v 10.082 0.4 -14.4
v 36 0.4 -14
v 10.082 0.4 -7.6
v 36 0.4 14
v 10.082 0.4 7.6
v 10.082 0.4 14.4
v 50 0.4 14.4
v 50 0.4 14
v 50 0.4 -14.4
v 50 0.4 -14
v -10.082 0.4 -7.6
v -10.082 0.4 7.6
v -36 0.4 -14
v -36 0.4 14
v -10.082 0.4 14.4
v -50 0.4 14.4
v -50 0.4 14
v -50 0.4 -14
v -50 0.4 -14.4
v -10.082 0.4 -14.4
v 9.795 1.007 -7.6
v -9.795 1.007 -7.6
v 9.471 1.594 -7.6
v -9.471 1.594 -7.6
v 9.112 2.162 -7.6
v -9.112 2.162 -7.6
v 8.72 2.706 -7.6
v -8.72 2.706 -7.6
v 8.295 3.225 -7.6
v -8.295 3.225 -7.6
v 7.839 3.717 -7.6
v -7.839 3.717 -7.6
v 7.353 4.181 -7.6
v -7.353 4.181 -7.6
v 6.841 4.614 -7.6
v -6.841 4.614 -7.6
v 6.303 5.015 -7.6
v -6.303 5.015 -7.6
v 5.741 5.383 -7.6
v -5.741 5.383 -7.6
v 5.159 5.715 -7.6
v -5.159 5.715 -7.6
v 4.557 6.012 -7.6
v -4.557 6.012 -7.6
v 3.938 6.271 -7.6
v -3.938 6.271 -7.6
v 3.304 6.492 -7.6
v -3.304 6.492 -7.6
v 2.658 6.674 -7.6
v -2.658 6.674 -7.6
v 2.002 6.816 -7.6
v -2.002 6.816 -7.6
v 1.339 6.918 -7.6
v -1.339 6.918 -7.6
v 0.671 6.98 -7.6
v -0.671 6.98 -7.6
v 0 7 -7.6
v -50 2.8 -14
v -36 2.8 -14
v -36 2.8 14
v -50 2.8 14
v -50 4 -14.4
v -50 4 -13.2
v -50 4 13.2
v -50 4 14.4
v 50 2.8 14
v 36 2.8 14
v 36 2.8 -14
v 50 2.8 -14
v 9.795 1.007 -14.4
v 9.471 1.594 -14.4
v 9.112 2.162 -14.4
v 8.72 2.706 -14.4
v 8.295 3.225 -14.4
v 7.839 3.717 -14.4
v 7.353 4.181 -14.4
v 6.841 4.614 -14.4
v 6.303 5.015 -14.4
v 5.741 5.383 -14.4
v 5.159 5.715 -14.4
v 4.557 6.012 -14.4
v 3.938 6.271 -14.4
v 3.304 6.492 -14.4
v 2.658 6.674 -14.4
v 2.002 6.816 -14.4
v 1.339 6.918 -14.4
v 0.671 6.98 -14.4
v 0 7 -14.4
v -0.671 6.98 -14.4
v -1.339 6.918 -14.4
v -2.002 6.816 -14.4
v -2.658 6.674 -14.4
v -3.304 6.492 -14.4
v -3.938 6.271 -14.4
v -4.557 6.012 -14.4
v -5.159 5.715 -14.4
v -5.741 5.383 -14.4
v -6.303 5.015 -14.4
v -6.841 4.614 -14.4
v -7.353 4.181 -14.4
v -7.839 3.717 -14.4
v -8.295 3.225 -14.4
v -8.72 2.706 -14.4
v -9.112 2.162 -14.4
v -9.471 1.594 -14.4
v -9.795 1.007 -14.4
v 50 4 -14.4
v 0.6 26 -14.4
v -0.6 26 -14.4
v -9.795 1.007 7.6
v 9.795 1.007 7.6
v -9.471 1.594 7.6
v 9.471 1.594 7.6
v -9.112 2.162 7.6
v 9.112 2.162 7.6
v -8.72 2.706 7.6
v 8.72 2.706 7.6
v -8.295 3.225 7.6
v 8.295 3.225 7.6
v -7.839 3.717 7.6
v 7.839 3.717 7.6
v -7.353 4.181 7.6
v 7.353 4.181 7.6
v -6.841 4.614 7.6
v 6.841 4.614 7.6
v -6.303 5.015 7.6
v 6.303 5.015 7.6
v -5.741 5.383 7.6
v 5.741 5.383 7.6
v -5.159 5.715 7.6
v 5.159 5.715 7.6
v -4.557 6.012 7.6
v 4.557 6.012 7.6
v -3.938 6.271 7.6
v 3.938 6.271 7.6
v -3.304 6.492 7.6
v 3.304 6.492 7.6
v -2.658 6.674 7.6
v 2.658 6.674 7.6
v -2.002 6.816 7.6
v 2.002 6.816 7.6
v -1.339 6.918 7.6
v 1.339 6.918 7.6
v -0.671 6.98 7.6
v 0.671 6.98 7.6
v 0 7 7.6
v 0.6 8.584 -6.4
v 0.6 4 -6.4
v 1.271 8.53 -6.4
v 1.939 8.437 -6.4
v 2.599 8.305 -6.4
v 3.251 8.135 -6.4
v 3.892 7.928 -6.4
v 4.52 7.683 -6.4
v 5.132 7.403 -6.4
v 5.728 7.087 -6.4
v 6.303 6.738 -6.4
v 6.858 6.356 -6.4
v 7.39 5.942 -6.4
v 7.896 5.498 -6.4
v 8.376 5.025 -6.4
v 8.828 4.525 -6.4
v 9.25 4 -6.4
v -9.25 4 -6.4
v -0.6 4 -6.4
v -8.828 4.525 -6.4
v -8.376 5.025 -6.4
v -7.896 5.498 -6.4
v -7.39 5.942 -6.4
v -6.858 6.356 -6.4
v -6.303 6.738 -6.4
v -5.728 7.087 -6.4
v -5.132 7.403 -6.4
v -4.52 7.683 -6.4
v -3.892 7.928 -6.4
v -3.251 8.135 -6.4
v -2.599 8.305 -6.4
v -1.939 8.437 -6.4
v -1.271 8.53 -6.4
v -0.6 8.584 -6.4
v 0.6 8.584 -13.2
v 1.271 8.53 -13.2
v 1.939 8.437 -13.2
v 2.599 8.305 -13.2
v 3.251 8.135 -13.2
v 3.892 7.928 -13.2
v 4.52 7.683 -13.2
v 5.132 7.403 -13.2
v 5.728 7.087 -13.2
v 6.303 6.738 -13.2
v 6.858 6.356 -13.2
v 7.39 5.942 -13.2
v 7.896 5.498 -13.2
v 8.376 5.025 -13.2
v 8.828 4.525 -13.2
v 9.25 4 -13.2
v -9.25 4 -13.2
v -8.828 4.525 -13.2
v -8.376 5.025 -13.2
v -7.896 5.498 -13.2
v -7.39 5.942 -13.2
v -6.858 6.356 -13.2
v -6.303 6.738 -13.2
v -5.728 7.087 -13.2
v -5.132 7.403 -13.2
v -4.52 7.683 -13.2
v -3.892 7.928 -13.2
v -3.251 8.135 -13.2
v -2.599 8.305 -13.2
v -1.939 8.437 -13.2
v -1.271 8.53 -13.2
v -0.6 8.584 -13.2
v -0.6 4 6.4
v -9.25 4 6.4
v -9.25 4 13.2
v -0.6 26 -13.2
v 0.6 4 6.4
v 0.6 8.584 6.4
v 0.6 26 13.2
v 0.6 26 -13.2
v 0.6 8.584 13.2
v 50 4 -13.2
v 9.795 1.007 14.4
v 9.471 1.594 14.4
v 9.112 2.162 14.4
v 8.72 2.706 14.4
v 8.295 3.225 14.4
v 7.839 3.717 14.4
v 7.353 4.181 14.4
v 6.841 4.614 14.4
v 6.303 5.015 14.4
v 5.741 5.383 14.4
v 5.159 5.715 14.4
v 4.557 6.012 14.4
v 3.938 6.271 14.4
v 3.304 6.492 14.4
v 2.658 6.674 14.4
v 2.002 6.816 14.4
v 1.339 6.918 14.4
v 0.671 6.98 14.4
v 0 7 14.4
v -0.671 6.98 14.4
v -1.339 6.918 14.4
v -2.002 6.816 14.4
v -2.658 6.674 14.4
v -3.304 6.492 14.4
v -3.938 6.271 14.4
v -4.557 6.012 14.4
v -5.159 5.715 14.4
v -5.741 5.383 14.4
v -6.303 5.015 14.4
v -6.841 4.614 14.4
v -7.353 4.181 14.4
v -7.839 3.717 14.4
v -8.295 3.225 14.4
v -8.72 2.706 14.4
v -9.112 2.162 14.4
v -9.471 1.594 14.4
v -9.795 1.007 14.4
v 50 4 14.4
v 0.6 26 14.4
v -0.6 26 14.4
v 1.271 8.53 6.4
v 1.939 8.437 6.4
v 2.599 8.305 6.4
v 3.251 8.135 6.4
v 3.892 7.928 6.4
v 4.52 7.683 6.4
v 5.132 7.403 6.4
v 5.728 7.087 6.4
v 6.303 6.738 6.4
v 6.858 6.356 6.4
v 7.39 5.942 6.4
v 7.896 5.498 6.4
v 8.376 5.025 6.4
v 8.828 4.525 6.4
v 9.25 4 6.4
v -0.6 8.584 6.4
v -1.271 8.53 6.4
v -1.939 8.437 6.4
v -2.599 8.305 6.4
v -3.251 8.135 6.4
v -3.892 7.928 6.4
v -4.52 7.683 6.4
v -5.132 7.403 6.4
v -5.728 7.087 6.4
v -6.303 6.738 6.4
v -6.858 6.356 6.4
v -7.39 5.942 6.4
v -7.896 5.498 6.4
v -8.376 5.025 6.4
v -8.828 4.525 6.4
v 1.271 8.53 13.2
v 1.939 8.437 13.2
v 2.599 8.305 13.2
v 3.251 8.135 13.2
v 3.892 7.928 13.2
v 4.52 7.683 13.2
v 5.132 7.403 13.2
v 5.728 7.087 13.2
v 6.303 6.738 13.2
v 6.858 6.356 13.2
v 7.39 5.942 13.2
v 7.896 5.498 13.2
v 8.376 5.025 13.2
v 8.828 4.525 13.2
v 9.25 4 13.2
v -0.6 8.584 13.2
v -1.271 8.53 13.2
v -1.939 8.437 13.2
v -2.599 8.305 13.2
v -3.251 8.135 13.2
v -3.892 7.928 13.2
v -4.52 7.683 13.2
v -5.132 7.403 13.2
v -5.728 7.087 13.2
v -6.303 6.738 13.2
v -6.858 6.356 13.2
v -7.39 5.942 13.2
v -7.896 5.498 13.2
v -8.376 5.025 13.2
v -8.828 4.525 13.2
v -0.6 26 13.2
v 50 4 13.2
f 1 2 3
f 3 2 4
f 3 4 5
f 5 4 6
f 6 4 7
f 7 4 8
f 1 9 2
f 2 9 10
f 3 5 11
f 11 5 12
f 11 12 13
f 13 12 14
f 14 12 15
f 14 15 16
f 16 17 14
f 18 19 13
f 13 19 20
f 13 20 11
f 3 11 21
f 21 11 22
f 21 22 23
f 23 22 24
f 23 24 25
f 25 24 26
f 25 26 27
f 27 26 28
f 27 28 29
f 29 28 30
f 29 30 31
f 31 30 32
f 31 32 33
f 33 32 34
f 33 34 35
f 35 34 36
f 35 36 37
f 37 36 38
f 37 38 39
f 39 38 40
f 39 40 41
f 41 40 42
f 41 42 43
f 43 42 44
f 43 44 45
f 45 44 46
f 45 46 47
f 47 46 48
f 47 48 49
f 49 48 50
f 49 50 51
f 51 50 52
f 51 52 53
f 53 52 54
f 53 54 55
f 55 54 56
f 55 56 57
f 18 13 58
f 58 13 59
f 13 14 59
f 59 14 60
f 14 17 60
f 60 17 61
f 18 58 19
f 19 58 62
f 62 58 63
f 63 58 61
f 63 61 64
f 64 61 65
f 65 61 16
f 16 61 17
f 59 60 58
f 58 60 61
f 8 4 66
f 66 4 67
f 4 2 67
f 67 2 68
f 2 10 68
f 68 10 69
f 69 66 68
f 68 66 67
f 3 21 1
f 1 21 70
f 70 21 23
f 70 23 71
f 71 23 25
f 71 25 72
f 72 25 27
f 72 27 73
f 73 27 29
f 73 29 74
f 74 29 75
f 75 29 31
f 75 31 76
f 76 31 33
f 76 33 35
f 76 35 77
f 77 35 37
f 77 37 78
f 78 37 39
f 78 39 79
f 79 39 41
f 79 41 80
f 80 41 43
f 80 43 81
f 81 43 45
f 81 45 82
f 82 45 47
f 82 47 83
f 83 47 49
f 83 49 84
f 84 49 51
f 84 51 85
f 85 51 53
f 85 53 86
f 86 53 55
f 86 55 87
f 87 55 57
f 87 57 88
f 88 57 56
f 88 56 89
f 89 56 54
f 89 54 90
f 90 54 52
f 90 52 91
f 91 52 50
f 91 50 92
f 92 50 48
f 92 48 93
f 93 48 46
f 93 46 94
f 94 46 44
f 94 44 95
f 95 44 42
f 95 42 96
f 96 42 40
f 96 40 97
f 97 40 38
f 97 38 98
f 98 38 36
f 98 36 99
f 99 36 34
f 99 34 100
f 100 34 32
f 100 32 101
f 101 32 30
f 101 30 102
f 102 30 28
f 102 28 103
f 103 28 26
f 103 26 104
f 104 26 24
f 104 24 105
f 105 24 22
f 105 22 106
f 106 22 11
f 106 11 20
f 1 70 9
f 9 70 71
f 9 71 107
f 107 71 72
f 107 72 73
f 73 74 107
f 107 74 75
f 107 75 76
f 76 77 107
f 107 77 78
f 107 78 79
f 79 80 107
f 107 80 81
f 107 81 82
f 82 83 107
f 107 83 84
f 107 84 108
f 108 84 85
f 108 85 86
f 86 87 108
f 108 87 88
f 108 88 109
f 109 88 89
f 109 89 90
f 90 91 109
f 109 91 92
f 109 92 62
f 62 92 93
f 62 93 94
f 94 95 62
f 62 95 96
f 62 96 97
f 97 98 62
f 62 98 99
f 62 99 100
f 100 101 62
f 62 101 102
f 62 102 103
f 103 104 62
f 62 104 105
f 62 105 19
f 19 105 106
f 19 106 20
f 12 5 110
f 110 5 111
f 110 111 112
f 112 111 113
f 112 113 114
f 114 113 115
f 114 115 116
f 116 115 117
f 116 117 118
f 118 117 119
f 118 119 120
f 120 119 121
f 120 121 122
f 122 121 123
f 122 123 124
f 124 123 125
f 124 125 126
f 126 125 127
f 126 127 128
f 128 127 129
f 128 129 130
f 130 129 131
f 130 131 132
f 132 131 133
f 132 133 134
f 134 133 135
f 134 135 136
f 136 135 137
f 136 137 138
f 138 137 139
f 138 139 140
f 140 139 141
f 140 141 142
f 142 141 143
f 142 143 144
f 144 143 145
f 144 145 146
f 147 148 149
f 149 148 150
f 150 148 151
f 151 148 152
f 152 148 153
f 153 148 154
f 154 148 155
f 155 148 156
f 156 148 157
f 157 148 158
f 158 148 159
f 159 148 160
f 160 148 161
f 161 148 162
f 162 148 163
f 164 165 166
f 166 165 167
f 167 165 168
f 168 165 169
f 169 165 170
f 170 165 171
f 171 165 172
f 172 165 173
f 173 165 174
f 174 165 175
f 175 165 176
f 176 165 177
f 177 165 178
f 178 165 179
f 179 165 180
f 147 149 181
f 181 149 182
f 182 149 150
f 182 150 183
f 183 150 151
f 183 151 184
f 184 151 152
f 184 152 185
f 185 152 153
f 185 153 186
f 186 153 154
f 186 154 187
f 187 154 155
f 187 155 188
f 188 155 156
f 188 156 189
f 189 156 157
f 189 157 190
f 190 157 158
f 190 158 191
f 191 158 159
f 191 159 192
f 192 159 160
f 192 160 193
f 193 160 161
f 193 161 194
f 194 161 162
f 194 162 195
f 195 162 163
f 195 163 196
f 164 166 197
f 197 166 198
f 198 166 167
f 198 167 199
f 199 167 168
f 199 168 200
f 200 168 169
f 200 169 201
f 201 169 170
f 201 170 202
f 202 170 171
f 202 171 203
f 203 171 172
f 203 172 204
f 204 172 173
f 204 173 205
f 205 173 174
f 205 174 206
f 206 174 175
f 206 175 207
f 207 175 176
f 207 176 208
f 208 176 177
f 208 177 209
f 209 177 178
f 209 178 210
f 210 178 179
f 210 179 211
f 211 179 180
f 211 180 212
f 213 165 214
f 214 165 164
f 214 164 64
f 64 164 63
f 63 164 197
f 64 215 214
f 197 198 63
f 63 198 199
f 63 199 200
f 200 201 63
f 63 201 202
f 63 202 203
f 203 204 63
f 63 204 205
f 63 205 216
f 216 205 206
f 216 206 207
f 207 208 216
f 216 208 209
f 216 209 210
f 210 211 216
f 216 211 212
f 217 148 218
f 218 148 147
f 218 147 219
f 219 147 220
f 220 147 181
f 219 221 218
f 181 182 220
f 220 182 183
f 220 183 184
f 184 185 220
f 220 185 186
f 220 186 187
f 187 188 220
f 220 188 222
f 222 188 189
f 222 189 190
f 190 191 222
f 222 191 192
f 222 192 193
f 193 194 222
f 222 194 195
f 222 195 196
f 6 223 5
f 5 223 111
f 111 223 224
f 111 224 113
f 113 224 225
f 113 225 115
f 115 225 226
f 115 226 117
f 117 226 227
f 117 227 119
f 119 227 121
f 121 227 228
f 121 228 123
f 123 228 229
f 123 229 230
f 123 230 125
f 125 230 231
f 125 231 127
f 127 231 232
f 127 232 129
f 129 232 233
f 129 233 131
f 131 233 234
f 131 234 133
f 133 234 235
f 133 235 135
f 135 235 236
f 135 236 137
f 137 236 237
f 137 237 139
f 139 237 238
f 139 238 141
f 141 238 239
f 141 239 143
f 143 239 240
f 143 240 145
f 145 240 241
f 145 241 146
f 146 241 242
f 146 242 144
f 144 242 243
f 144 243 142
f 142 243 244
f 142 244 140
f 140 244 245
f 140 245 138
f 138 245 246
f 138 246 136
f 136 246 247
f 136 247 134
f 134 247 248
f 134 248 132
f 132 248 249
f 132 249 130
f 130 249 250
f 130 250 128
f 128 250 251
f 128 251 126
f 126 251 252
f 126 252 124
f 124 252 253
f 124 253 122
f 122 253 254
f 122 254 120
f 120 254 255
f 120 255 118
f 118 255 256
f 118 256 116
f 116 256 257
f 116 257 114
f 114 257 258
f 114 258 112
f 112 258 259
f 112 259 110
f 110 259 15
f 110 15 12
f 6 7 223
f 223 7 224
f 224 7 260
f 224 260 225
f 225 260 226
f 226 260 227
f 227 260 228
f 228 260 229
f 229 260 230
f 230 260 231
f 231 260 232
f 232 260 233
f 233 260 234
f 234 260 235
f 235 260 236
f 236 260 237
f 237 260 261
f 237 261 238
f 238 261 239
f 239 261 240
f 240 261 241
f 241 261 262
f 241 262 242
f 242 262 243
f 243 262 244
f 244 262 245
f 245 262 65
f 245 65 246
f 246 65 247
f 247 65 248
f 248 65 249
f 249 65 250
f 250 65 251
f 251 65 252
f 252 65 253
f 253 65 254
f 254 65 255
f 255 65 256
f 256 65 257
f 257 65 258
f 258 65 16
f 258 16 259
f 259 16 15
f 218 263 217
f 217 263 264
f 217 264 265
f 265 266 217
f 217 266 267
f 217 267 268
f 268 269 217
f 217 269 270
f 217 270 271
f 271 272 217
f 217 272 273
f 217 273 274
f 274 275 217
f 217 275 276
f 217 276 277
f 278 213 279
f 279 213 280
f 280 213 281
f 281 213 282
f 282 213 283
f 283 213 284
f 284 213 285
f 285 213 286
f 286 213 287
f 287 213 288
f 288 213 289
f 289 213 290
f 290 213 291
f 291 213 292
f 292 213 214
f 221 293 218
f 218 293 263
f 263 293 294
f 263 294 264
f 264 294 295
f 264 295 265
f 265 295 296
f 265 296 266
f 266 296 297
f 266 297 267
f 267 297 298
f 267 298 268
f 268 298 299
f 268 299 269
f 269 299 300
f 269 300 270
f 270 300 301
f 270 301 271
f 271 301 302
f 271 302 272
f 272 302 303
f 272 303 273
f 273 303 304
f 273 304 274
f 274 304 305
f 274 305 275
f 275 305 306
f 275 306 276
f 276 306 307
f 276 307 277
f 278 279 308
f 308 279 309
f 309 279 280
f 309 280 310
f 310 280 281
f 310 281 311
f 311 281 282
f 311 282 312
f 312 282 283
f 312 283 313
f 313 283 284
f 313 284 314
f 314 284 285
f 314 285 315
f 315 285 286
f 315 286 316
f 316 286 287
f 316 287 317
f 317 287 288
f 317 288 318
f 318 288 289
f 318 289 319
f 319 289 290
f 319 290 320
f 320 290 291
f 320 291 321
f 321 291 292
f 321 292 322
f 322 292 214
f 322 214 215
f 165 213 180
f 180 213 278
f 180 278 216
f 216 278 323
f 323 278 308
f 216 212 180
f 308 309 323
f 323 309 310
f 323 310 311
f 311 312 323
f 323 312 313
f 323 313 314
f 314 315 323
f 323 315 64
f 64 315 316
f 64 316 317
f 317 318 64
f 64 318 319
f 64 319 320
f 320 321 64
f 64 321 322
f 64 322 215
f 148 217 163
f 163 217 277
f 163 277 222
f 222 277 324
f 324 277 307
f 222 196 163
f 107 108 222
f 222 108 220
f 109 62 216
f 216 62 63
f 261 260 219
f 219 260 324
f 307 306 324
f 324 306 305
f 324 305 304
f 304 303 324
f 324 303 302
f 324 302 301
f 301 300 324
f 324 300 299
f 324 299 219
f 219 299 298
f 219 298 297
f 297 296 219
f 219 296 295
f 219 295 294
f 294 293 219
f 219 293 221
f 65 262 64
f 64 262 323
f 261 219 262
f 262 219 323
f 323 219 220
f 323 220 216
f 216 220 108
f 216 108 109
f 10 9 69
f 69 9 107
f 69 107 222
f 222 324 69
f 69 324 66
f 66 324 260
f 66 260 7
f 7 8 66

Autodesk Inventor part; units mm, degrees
ref_plane "YZ Plane" through (0, 0, 0) normal (1, 0, 0) x (0, 1, 0)
ref_plane "XZ Plane" through (0, 0, 0) normal (0, 1, 0) x (-1, 0, 0)
ref_plane "XY Plane" through (0, 0, 0) normal (0, 0, 1) x (1, 0, 0)
sketch "Szkic1" plane through (0, 0, 0) normal (0, 1, 0) x (-1, 0, 0)
  point P0 (0, 0)
sketch "Szkic2" plane through (0, 0, 0) normal (0, 1, 0) x (-1, 0, 0)
  line L0 (50, -14.4) -> (-50, -14.4)
  line L1 (-50, -14.4) -> (-50, 14.4)
  line L2 (-50, 14.4) -> (50, 14.4)
  line L3 (50, 14.4) -> (50, -14.4)
  line L4 (50, -14.4) -> (-50, 14.4) construction
  line L5 (-50, -14.4) -> (50, 14.4) construction
  point P0 (0, 0)
  dimension "d0" = 100
  dimension "d1" = 28.8
extrude "Wyciągnięcie proste1" add sketch "Szkic2" along normal blind 4
sketch "Szkic3" plane through (0, 4, 0) normal (0, 1, 0) x (1, 0, 0)
  line L0 (-0.6, 14.4) -> (0.6, 14.4)
  line L1 (0.6, 14.4) -> (0.6, -14.4)
  line L2 (0.6, -14.4) -> (-0.6, -14.4)
  line L3 (-0.6, -14.4) -> (-0.6, 14.4)
  line L4 (-0.6, 14.4) -> (0.6, -14.4) construction
  line L5 (0.6, 14.4) -> (-0.6, -14.4) construction
  point P0 (0, 0)
  dimension "d4" = 1.2
  dimension "d5" = 28.8
extrude "Wyciągnięcie proste2" add sketch "Szkic3" along normal blind 22
sketch "Szkic4" plane through (-50, 0, 14.4) normal (0, 0, 1) x (1, 0, 0)
  line L0 (0, 0) -> (0, 4) projected
  line L1 (50.6, 26) -> (49.4, 26) projected
  line L2 (0, 4) -> (49.4, 26)
  line L3 (0, 4) -> (49.4, 4) projected
  line L4 (49.4, 26) -> (49.4, 4)
  line L5 (49.4, 4) -> (0, 4)
  point P0 (50, 0)
extrude "Wyciągnięcie proste3" add sketch "Szkic4" against normal blind 1.2
mirror "Odbij1" about plane through (0, 0, 0) normal (1, 0, 0) of "Wyciągnięcie proste3"
mirror "Odbij2" about plane through (0, 0, 0) normal (0, 0, 1) of "Wyciągnięcie proste3", "Odbij1"
sketch "Szkic5" plane through (-50, 0, 14.4) normal (0, 0, 1) x (1, 0, 0)
  point P0 (50, 0)
sketch "Szkic6" plane through (-50, 0, 14.4) normal (0, 0, 1) x (1, 0, 0)
  line L0 (50, 0) -> (50, -3)
  circle A0 centre (50, -3) radius 11.6
  dimension "d10" = 3
  dimension "d11" = 23.2
extrude "Wyciągnięcie proste4" add sketch "Szkic6" against normal blind 8
sketch "Szkic7" plane through (-50, 0, 14.4) normal (0, 0, 1) x (1, 0, 0)
  line L0 (50, 0) -> (50, -4)
  circle A0 centre (50, -4) radius 11
  dimension "d14" = 4
  dimension "d15" = 22
extrude "Wyciągnięcie proste5" cut sketch "Szkic7" against normal blind 6.8
mirror "Odbij3" about plane through (0, 0, 0) normal (0, 0, 1) of "Wyciągnięcie proste4", "Wyciągnięcie proste5"
sketch "Szkic8" plane through (0, 0, 0) normal (0, -1, 0) x (1, 0, 0)
  line L0 (50, -14.4) -> (-50, -14.4)
  line L1 (-50, -14.4) -> (-50, 14.4)
  line L2 (-50, 14.4) -> (50, 14.4)
  line L3 (50, 14.4) -> (50, -14.4)
  line L4 (50, -14.4) -> (-50, 14.4) construction
  line L5 (-50, -14.4) -> (50, 14.4) construction
  point P0 (0, 0)
  dimension "d18" = 100
  dimension "d19" = 28.8
extrude "Wyciągnięcie proste6" cut sketch "Szkic8" along normal through all
sketch "Szkic9" plane through (0, 0, 0) normal (0, -1, 0) x (1, 0, 0)
  line L0 (50, 14.4) -> (50, -14.4) projected
  line L1 (50, 0) -> (43, 0)
  line L2 (36, -14) -> (50, -14)
  line L3 (50, -14) -> (50, 14)
  line L4 (50, 14) -> (36, 14)
  line L5 (36, 14) -> (36, -14)
  line L6 (36, -14) -> (50, 14) construction
  line L7 (50, -14) -> (36, 14) construction
  point P0 (0, 0)
  point P1 (50, -14)
  point P2 (50, 14)
  dimension "d22" = 7
  dimension "d23" = 14
  dimension "d24" = 28
extrude "Wyciągnięcie proste7" cut sketch "Szkic9" against normal blind 2.8
mirror "Odbij4" about plane through (0, 0, 0) normal (1, 0, 0) of "Wyciągnięcie proste7"
sketch "Szkic10" plane through (0, 0, 0) normal (0, -1, 0) x (1, 0, 0)
  line L0 (50, -14.4) -> (-50, -14.4)
  line L1 (-50, -14.4) -> (-50, 14.4)
  line L2 (-50, 14.4) -> (50, 14.4)
  line L3 (50, 14.4) -> (50, -14.4)
  line L4 (50, -14.4) -> (-50, 14.4) construction
  line L5 (-50, -14.4) -> (50, 14.4) construction
  point P0 (0, 0)
  dimension "d27" = 100
  dimension "d28" = 28.8
sketch "Szkic11" plane through (0, 0, 0) normal (0, -1, 0) x (1, 0, 0)
  line L0 (-50, 14.4) -> (50, 14.4)
  line L1 (50, 14.4) -> (50, -14.4)
  line L2 (50, -14.4) -> (-50, -14.4)
  line L3 (-50, -14.4) -> (-50, 14.4)
  line L4 (-50, 14.4) -> (50, -14.4) construction
  line L5 (50, 14.4) -> (-50, -14.4) construction
  point P0 (0, 0)
  dimension "d29" = 100
  dimension "d30" = 28.8
extrude "Wyciągnięcie proste8" cut sketch "Szkic11" against normal blind 0.4
properties part number "kolyska_v2"
